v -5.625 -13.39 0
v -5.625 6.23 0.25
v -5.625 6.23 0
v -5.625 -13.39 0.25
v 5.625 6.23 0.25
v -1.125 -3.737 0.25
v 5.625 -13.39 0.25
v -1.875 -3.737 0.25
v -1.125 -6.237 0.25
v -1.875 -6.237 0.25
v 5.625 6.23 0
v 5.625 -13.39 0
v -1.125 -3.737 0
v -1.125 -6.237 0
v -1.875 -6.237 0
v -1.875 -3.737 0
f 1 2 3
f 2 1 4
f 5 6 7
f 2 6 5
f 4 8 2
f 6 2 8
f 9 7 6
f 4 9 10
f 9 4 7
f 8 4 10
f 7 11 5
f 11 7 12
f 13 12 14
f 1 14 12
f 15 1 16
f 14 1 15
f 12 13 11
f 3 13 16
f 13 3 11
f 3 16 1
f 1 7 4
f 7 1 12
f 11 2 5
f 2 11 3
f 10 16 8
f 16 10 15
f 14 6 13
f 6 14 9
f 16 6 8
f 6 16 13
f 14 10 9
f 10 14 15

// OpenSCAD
module channel1(){
    rotate ([0,0,270])
        rotate_extrude(angle=90, $fn = 300)
            translate([.5, .0485]) square([.6,.2247],true);
    
    translate([0,1.11,-.001])
        rotate_extrude(angle=45, $fn = 300)
            translate([.5, .0485]) square([.6,.2247],true);
    
    translate([.2,-.01,-.064])
        cube([.6, 1.125,.225],false);
    
    translate([.15, 1.243,-.064])
    rotate ([0,0,45])
        cube([.6, 1.45,.225],false);
}

module channel2(){  
    translate([-1.863, -8.75,-.064])
        cube([.6, 1.25,.225],false);
   
    translate([-1.0625, -7.5,-.001])
    rotate ([180,0,180])
        rotate_extrude(angle=45, $fn = 300)
            translate([.5, -.0485]) square([.6,.225],true);
    
      translate([-.245, -6.4,-.064])
      rotate ([0,0,135])
        cube([.6, 1.37,.225],false); 
}

module channel3(){

    translate([-.875, 4,-.001])
        rotate_extrude(angle=45, $fn = 300)
            translate([.5, 0.0485]) square([.6,.225],true);
    
        translate([-3, -2.75,-.001])
    rotate([0,0,90])
        rotate_extrude(angle=90, $fn = 300)
            translate([.5, 0.0485]) square([.6,.225],true);
    
        translate([-.875, -2.75,-.001])
        rotate_extrude(angle=90, $fn = 300)
            translate([.5, 0.0485]) square([.6,.225],true);
    
    translate([-.675, -3.975,-.064])
        cube([.6, 8,.225],false);
    
    translate([4.75, -2.04,-.064])
    rotate([0,0,90])
        cube([.6, 5,.225],false);
    
    translate([-.175, -3.975,-.064])
        cube([.6, 2.5,.225],false);
    
           
    translate([-.8, -2.55,-.064])
    rotate([0,0,90])
        cube([.6, 2.25,.225],false);   
}

module riser2_cutout(){ // riser for kettle
    union(){
        translate([-.625, 0, .375])
        cylinder(1, r=.25, center = true, $fn=30);
        translate([.625, 0, .375])
        cylinder(1, r=.25, center = true, $fn=30);
    }
}

module button_cutout(){ // push botton cutout
  
    translate([.25, -.5, -.07]) 
       cube([1.75, 3, .66], center = false);
      
    translate([.5, 1.75, .5125]) //control button
        button();
  
    translate([.5, 0, .5125])  // north button
        button();
    
    translate([.875, .5, .5125]) // west button
        button();
    
    translate([.125, .5, .5125]) // east button
        button();
    
    translate([.5, 1, .5125])
        button();          // south button    
}
    
module button(){ // push botton 

        translate([.625, 0, .166])
        color( "black", 1.0 )
            cylinder(.1875, r=.0625, center = true, $fn=30);
    
        translate([.625, 0, 0])
             cube([.25, .4375, .156], center = true);  
}

module StepMotor28BYJ_Cutout(){
    union(){
        translate  ([-.315,0, 0])
            cylinder(h = 1, r = .55, center = true, $fn = 32);
        translate([-.815, 0, 0])
            cube([.5, .75, 1], center = true);
        }       
}

module motor_bases() {
    
difference (){
union(){
    translate([0, 2.89, .375])
        cylinder(.75, r=3.5, $fn=300, center=true); // cup platform
        
    translate([0, -2, .375])
        cube([2.9375, 4, .75], center = true); // center arm
    
    translate([-1.965, .2025, .375])
    rotate([0, 0, 100])
        cube([.5, 1, .75], center = true); // west arm filler
   
    translate([-3.5, 2.37, .375])
    rotate([0, 0, 317])
        cube([.5, 1, .75], center = true); // west arm filler 
   
    translate([1.362, 5.9, .375])
    rotate([0, 0, 19])
        cube([.5, 1, .75], center = true); // center/ north arm filler
        
    translate([-1.362, 5.9, .375])
    rotate([0, 0, 341])
        cube([.5, 1, .75], center = true); // center/ north arm filler 
    
    translate([1.965, .2025, .375])
    rotate([0, 0, 80])
        cube([.5, 1, .75], center = true); // east arm filler 
    
    translate([3.5, 2.37, .375])
    rotate([0, 0, 43])
        cube([.5, .5, .75], center = true); // east arm filler 
           
    translate([-1.27, -.2, .375])
    rotate([0, 0, 33])
        cube([.5, .5, .75], center = true); // center arm filler north west
    
    translate([1.27, -.2, .375])
    rotate([0, 0, -30])
        cube([.5, .5, .75], center = true); // center arm filler north east
       
    translate([-1.27, -3.72, .375])
    rotate([0, 0, 332])
        cube([.5, .5, .75], center = true); // center arm filler south west 
    
    translate([1.27, -3.72, .375])
    rotate([0, 0, 28])
        cube([.5, .5, .75], center = true); // center arm filler south east 
    
    translate([0, 5.774, .375])
    rotate([0, 0, 0])
        cube([2.0625, 5.774, .75], center=true); // north arm
        
    translate([2.5, 1.45, .375])
    rotate([0, 0, 60])
        cube([2.0625, 5.774, .75], center=true); // east arm  
      
    translate([-2.5, 1.45, .375])
    rotate([0, 0, 120])
        cube([2.0625, 5.774, .75], center=true); // west arm
    
    translate([0, 7.245, 0])
        cylinder(.75, r=1.875, $fn=300, center=false); // north outcrop
    
    translate([-3.75, .75, 0])
        cylinder(.75, r=1.875, $fn=300, center=false); // west outcrop
    
    translate([3.75, .75, 0])
        cylinder(.75, r=1.875, $fn=300, center=false); // east outcrop

    translate([0, -8.5, 0]) // base for kettle
        hull(){                   
            translate([0, 1, .375])
            cylinder(.75, r=3, $fn=300, center=true); 
            translate([0, 2.25, .375])
            cylinder(.75, r=3, $fn=300, center=true); 
    }
}

    translate([-1.593, -.347, .375])
        cylinder(.875, r=.125, $fn=30, center=true); // Round corner cent. platform north west

    translate([1.593, -.347, .375])
        cylinder(.875, r=.125, $fn=30, center=true); // Round corner cent. platform north east

    translate([-1.593, -3.567, .375])
        cylinder(.875, r=.125, $fn=30, center=true); // Round corner cent. platform south west

    translate([1.593, -3.567, .375])
        cylinder(.875, r=.125, $fn=30, center=true); // Round corner cent. platform south east

    translate([-1.965, -.14, .375])
        cylinder(.875, r=.125, $fn=30, center=true); // Round corner west outcrop

    translate([-3.609, 2.739, .375])
        cylinder(.875, r=.125, $fn=30, center=true); // Round corner west outcrop

    translate([1.966, -.1375, .375])
        cylinder(.875, r=.125, $fn=30, center=true); // Round corner east outcrop

    translate([3.609, 2.739, .375])
        cylinder(.875, r=.125, $fn=30, center=true); // Round corner east outcrop

    translate([1.639, 6.106, .375])
        cylinder(.875, r=.125, $fn=30, center=true); // Round corner north outcrop
        
    translate([-1.639, 6.106, .375])
        cylinder(.875, r=.125, $fn=30, center=true); // Round corner north outcrop     
}
}

///////////////// CODE BEGINS//////////////////

difference() {
    
    translate([-5.625, -13.39, 0])
        cube([11.25, 19.62,.25],false); 
    
    //translate([0,-2.89,0])
      //  motor_bases();
  /* 
    translate([1.5,-9, -.01])
        channel1(); 
   
    translate([0, 0, 0])
        channel2(); 
    
    translate([0, 0, 0])
        channel3();
*/
//    translate([-2.9, -10.75, .065])
//        button_cutout(); //This has been verified.
   
    translate([-1.5, -4.987, .145]) 
        cube([ .75, 2.5, .3], center=true); // outlet cutout
    
 //   translate([0, -5.3, .24]) 
 //       cube([ 2.4375, 3.126, .5], center=true); // board cutout

//    translate([0, 0, .501])
 //       cylinder(.25, r=3.625, $fn=30); //removes material from platform for effector
    
////Through Holes//////
 /*  
    translate([-1, 5.193, .375]) //north stepper cutout
    rotate ([0, 180, 300])    
        StepMotor28BYJ_Cutout();

    translate ([-4.0003, -3.4675, .375]) //west stepper cutout
    rotate ([0, 180, 60])
        StepMotor28BYJ_Cutout();

    translate ([5.0003, -1.7355, .375]) //east stepper cutout    
    rotate ([0, 180, 180])
        StepMotor28BYJ_Cutout();
         
    translate([.46, -9.5, .375]) //kettle stepper cutout
    rotate ([0, 0, 180])
        StepMotor28BYJ_Cutout();
        
    translate([-0, -7.45, 0])  
        riser2_cutout();
 */  
///// Marking of eyelet locations -- tool change small bit 
      
    //translate([0, 5.77, .5])
        //%cylinder(1.55, r=.015, $fn=30, center=false); // cable pivot point north
    
    //translate([-5, -2.89, .5])
        //%cylinder(.55, r=0.015, $fn=30, center=false); // west outcrop
     
    //translate([5, -2.89, .50])
        //%cylinder(.55, r=.015, $fn=30, center=false); // east outcrop
  
    //translate([0, 0, .25])
        //%cylinder(.55, r=.015, $fn=30, center=false); // center (coordinate 0,0)
        
    translate([0, 5.895, .5625])
        cylinder(.55, r=.015, $fn=30, center=false); // cable pivot point north w/offset
            
    translate([-5.108, -2.9525, .5])
        cylinder(.55, r=0.015, $fn=30, center=false); // west outcrop w/offset
        
    translate([5.108, -2.9525, .5])
        cylinder(.55, r=.015, $fn=30, center=false); // east outcrop w/offset
        
    translate([0, -11.45, .5])
        cylinder(.55, r=.015, $fn=30, center=false); // kettle rear eyelette
        
    translate([0, -5.1375, .5])
        cylinder(.55, r=.015, $fn=30, center=false); // kettle front eyelette
}
